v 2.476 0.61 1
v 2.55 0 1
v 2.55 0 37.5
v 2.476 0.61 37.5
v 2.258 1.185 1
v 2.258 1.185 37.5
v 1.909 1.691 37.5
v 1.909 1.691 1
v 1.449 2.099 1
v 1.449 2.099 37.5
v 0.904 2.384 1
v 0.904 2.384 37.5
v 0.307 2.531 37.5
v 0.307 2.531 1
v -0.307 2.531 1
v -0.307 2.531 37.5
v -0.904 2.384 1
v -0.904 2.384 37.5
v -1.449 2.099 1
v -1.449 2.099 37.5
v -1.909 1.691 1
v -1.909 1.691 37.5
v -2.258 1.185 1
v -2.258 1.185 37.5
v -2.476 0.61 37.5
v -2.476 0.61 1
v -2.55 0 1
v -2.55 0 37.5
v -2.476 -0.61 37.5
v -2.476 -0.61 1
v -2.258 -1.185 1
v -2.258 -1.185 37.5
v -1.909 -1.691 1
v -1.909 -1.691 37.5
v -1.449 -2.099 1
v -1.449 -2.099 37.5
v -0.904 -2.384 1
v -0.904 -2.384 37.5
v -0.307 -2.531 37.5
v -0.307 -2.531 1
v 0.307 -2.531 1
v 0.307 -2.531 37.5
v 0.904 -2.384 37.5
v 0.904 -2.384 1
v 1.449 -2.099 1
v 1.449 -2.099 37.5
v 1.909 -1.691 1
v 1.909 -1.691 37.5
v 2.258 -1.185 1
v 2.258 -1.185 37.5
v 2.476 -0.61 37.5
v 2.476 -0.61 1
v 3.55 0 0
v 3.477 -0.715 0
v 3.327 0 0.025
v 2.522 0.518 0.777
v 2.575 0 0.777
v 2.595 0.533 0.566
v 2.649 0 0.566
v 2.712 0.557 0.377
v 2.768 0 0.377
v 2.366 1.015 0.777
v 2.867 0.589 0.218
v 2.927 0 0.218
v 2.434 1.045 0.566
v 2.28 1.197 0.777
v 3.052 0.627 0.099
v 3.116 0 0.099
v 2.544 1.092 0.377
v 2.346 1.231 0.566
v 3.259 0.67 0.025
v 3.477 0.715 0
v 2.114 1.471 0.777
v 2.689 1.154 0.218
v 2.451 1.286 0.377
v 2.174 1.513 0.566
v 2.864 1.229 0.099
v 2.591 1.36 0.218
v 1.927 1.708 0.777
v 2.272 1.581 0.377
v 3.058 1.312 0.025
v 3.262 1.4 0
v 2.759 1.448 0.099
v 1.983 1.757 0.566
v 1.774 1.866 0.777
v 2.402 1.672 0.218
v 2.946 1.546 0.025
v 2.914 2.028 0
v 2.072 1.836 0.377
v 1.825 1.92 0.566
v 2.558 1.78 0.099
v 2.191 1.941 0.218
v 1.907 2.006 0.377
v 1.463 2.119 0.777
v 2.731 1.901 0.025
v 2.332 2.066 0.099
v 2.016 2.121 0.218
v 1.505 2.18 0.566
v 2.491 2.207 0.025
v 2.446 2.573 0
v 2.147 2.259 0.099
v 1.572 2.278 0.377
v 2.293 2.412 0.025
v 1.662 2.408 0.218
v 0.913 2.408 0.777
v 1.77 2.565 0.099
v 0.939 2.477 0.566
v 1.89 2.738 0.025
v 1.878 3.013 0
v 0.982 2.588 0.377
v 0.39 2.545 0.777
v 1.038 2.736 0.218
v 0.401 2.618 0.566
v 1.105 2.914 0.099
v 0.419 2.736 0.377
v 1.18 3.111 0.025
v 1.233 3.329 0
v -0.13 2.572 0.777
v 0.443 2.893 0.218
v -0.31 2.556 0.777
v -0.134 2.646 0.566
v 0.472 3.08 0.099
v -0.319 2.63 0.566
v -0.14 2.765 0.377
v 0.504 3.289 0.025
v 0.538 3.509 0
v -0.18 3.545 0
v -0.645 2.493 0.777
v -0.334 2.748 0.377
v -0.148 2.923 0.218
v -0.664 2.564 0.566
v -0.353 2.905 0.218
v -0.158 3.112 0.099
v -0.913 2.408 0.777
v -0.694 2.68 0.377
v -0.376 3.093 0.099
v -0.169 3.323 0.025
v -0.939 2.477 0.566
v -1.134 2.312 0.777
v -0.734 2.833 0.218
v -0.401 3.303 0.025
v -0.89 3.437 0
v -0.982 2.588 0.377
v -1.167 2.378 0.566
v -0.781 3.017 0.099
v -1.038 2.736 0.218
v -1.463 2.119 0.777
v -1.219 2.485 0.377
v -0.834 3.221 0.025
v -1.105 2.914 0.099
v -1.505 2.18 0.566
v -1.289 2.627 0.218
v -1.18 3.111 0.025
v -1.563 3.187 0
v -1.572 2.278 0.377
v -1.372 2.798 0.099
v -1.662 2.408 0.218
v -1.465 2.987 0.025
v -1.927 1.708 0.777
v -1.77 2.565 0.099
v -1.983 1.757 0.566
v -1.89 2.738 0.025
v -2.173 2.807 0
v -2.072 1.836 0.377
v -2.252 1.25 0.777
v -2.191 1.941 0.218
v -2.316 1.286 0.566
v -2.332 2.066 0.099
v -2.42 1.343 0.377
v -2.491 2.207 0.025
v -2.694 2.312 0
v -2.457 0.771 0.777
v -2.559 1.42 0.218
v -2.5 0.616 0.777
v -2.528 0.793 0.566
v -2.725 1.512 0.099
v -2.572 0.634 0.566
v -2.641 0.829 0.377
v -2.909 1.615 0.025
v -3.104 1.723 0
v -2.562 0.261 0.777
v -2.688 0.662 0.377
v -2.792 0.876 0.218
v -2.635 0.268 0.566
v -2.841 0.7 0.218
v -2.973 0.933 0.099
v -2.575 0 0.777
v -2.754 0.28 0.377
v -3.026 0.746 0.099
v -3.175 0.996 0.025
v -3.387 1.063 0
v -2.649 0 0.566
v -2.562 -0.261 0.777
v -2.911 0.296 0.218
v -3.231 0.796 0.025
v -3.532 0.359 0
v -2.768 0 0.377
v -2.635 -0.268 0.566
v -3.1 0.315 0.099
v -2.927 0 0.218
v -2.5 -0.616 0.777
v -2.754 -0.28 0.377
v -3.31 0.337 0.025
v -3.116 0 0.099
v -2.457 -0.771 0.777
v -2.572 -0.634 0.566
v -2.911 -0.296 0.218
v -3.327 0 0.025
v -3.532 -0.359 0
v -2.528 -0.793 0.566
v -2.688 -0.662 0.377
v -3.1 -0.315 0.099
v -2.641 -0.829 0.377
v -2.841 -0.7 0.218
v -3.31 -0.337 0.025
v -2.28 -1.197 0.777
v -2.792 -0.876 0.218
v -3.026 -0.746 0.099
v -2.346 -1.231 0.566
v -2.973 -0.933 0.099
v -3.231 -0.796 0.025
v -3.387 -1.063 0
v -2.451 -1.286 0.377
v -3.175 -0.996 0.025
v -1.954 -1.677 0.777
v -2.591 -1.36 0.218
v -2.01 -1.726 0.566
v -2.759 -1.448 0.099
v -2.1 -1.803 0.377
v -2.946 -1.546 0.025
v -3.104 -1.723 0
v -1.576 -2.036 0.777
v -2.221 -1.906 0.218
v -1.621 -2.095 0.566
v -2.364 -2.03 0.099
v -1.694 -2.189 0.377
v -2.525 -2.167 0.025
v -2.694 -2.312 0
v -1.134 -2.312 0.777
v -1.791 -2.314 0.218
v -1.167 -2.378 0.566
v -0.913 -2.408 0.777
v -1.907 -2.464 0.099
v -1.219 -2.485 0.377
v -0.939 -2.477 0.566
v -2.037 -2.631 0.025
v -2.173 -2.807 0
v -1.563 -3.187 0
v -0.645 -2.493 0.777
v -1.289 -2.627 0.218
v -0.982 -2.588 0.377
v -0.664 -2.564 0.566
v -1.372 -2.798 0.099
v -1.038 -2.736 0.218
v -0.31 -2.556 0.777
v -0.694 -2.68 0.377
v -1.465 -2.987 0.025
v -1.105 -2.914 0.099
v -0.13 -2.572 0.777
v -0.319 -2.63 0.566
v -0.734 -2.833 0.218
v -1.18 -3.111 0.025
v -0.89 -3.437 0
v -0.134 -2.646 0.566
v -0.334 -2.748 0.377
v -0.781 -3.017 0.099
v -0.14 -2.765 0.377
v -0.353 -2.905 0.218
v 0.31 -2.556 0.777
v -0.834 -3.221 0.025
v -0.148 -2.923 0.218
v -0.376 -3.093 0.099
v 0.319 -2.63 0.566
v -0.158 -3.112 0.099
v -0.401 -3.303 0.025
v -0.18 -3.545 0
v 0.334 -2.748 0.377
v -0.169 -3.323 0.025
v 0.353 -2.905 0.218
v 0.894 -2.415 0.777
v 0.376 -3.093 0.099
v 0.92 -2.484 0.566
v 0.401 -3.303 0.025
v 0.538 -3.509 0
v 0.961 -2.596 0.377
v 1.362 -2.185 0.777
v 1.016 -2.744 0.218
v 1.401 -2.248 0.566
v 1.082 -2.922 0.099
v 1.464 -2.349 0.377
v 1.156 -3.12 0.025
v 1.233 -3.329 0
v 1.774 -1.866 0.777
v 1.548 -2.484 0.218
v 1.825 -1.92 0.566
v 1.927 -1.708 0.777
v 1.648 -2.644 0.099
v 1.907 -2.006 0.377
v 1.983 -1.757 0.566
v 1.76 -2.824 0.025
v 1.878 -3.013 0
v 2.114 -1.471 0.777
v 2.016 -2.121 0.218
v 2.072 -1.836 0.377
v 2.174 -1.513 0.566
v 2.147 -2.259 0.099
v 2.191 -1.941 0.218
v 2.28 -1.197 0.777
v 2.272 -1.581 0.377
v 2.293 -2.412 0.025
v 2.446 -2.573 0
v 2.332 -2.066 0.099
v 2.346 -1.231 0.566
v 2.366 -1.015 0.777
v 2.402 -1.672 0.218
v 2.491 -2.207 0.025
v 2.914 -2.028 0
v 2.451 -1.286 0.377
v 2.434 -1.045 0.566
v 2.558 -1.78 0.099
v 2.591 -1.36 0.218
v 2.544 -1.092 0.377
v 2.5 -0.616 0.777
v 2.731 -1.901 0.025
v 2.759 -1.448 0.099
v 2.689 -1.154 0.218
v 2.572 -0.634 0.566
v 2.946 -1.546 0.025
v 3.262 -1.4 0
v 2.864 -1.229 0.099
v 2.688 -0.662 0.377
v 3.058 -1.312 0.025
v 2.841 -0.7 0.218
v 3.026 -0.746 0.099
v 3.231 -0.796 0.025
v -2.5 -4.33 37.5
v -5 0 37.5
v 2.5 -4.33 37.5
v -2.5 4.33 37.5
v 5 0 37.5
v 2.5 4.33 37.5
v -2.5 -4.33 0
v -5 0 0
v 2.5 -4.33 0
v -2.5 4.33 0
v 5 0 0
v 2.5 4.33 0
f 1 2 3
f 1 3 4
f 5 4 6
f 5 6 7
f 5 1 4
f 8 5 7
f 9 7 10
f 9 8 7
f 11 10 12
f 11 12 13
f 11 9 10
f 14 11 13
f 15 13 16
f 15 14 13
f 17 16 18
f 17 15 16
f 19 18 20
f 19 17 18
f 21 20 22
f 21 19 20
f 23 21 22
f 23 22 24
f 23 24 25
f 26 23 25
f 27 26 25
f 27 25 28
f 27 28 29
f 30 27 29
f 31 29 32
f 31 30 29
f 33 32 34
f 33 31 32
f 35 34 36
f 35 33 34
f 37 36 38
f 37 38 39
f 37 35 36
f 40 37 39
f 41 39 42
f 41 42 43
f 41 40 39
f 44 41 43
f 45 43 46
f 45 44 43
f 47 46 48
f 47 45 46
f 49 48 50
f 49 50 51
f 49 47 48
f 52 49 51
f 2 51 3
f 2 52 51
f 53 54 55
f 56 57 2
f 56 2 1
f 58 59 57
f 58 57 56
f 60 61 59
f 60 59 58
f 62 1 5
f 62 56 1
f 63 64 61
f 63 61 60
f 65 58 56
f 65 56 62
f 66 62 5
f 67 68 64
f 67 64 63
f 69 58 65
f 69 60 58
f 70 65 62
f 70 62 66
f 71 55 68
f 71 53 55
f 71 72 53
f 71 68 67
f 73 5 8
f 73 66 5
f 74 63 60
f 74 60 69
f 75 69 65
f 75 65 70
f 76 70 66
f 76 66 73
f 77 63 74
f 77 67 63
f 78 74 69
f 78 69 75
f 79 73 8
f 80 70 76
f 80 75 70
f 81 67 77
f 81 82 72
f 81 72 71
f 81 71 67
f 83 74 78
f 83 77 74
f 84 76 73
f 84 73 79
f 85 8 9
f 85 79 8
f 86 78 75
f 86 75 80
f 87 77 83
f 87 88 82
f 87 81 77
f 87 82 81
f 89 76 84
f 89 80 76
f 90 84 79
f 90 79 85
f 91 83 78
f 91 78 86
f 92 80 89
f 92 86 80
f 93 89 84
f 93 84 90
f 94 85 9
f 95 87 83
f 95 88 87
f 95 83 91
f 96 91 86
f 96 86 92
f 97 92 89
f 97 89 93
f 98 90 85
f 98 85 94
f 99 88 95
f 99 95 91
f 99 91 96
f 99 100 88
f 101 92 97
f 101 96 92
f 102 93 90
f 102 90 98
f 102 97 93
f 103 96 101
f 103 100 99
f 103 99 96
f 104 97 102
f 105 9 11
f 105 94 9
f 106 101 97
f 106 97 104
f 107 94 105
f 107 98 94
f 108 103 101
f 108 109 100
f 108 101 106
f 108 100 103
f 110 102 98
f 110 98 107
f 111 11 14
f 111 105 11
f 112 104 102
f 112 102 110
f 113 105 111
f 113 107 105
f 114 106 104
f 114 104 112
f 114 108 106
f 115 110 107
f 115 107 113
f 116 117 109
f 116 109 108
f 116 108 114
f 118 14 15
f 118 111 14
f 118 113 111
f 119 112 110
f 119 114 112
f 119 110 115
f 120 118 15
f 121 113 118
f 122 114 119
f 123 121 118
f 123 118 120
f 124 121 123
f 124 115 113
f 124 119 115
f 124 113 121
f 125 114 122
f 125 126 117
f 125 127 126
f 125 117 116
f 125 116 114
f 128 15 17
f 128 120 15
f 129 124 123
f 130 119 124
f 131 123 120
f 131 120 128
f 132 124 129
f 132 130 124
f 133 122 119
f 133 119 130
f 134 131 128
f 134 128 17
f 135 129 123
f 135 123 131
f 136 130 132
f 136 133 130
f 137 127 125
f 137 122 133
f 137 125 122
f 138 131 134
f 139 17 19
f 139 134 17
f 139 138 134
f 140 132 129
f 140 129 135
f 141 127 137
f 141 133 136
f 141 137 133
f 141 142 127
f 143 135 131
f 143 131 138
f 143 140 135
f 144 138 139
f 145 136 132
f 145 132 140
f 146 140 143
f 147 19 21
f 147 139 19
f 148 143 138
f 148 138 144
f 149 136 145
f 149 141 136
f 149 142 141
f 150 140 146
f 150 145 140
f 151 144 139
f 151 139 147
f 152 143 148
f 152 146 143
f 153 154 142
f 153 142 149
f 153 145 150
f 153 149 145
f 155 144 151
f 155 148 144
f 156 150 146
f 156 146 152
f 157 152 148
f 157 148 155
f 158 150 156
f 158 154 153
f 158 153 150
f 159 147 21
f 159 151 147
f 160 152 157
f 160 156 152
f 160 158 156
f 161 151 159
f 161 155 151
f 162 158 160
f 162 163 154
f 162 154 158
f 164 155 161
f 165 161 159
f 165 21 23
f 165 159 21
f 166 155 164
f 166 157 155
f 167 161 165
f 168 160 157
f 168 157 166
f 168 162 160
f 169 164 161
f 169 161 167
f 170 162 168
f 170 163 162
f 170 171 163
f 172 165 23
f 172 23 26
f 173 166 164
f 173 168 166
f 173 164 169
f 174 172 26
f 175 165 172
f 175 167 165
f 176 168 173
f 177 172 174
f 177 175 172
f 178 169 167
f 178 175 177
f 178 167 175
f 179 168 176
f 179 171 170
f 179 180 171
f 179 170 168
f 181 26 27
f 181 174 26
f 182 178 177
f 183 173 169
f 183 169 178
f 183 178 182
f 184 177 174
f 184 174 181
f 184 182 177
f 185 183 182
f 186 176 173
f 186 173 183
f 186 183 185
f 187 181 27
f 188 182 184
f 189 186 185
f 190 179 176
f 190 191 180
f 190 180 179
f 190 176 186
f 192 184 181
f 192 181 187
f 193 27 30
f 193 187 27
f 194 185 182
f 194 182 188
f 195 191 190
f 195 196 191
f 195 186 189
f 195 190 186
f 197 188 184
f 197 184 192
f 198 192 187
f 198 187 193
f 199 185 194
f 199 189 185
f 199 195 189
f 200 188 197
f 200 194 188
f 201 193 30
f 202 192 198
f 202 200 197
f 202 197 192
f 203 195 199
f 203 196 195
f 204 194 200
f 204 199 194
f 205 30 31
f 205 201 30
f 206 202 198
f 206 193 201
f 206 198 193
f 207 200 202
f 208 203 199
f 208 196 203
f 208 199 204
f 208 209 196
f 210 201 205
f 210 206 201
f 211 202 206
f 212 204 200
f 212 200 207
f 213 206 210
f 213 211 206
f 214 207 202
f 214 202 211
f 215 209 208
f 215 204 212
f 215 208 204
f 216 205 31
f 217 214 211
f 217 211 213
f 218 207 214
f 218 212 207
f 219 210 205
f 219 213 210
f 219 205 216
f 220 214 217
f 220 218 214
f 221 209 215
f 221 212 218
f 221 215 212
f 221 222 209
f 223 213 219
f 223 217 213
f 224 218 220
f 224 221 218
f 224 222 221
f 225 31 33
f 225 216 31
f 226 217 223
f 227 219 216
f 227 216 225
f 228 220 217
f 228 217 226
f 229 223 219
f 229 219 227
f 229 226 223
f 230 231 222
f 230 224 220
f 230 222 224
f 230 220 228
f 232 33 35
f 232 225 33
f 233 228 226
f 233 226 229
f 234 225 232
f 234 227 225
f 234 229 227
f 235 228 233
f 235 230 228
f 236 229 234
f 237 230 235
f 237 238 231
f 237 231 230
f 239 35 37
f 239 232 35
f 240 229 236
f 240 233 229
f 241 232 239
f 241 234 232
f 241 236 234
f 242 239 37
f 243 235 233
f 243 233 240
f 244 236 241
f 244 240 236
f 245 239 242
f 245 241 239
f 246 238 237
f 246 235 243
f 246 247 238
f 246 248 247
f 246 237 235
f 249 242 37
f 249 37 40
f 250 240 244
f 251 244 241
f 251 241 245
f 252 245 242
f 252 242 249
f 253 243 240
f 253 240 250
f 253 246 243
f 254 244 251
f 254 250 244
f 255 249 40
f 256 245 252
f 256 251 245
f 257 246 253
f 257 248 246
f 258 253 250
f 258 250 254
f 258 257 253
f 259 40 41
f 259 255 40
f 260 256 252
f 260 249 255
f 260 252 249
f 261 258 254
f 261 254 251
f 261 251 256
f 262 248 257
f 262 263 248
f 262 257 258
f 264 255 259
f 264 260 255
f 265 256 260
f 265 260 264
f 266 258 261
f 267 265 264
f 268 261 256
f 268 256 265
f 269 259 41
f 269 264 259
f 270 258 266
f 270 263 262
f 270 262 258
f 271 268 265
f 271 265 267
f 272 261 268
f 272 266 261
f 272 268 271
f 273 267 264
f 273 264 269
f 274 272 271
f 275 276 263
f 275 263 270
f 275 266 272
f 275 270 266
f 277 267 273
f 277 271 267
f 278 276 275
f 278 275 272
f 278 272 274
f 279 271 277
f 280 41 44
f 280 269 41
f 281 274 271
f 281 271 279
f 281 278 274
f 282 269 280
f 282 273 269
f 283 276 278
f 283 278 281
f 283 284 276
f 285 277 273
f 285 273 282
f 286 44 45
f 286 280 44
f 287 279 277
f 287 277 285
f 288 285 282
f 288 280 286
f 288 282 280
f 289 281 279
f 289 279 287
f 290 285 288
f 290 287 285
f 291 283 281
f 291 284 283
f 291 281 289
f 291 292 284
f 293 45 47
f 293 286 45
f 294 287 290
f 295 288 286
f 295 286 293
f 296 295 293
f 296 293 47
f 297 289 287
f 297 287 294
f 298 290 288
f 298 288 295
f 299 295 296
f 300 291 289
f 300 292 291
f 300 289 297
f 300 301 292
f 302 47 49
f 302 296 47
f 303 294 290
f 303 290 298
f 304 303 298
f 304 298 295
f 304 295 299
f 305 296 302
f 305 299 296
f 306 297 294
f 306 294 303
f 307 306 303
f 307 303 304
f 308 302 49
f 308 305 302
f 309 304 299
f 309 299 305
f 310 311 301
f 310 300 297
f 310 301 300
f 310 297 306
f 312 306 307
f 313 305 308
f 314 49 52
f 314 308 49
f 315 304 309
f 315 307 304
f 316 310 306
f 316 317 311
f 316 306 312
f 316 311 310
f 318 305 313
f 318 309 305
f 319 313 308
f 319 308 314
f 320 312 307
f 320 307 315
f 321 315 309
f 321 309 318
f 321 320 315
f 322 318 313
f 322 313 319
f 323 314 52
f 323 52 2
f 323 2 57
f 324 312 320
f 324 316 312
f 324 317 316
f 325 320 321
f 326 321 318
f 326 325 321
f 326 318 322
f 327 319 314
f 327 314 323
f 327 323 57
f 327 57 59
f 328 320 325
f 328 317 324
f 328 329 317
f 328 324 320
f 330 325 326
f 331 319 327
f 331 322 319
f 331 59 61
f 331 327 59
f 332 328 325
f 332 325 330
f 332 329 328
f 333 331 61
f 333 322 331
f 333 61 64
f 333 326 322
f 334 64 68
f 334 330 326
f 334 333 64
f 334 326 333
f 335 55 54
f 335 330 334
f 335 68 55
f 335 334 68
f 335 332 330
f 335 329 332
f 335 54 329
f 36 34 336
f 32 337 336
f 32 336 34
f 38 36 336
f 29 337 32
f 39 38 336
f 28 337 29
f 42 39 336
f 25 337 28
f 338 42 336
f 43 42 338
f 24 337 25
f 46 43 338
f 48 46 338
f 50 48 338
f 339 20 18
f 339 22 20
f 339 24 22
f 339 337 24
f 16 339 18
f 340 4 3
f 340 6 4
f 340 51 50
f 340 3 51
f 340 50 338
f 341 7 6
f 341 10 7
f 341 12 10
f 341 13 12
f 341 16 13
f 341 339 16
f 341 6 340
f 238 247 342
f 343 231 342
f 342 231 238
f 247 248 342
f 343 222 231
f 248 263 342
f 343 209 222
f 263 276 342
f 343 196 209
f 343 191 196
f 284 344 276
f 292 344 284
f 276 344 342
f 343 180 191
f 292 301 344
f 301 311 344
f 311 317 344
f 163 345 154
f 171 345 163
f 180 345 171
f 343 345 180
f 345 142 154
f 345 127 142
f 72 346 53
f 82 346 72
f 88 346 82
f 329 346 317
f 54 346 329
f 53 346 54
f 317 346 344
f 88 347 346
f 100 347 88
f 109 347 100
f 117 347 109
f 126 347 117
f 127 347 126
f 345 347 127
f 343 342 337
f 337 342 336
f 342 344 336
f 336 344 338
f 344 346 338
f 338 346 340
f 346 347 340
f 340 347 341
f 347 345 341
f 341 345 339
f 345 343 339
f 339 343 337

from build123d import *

# Parameters (mm, degrees)
SKETCH_R  = 2.55
PAD_DEPTH = 37.5
FILLET_R  = 1


with BuildPart() as part:
    # Sketch → Pad (new body)
    with BuildSketch(Plane.XY):
        Polygon((-5, 0), (-2.5, -4.330127), (2.5, -4.330127), (5, 0), (2.5, 4.330127), (-2.5, 4.330127), align=None)
        Circle(SKETCH_R, mode=Mode.SUBTRACT)
    extrude(amount=PAD_DEPTH)

    # Fillet
    fillet_edges = [part.edges().sort_by_distance(p)[0] for p in [
        (-2.55, 0, 0),
    ]]
    fillet(fillet_edges, radius=FILLET_R)


solid = part.part
